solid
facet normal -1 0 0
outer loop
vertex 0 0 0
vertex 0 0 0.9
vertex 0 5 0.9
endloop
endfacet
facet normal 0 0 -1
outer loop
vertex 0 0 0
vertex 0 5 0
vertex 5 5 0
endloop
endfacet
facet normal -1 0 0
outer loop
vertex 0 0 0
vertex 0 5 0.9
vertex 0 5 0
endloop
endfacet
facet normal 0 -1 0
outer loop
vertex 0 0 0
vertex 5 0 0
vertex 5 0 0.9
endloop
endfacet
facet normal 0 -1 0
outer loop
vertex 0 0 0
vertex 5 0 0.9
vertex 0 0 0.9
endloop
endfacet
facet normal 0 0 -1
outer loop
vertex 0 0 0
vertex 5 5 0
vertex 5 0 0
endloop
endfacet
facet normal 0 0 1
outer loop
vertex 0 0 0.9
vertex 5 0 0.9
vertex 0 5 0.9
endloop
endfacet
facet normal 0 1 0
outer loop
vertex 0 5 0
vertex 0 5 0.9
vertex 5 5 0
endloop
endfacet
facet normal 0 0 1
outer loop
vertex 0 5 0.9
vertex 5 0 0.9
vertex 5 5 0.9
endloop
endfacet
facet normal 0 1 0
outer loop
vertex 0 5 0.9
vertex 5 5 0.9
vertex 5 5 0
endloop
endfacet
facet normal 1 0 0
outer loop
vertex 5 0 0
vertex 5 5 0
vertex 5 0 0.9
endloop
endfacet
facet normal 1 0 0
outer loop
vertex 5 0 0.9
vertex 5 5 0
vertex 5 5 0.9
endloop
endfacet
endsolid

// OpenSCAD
/* Warning, this is a very basic generator with a lot of approximation 
input data : [QFN, 3EX, 5x5x0.9mm, 32, , A, C04-00240A]
generated by com.zoubworld.electronics.cad.model3d.Basic
Date : Sun Feb 15 10:50:48 CET 2026
*/

//body
color("black")
translate([0,0,0])
cube([5.0,5.0,0.9], center=false);
